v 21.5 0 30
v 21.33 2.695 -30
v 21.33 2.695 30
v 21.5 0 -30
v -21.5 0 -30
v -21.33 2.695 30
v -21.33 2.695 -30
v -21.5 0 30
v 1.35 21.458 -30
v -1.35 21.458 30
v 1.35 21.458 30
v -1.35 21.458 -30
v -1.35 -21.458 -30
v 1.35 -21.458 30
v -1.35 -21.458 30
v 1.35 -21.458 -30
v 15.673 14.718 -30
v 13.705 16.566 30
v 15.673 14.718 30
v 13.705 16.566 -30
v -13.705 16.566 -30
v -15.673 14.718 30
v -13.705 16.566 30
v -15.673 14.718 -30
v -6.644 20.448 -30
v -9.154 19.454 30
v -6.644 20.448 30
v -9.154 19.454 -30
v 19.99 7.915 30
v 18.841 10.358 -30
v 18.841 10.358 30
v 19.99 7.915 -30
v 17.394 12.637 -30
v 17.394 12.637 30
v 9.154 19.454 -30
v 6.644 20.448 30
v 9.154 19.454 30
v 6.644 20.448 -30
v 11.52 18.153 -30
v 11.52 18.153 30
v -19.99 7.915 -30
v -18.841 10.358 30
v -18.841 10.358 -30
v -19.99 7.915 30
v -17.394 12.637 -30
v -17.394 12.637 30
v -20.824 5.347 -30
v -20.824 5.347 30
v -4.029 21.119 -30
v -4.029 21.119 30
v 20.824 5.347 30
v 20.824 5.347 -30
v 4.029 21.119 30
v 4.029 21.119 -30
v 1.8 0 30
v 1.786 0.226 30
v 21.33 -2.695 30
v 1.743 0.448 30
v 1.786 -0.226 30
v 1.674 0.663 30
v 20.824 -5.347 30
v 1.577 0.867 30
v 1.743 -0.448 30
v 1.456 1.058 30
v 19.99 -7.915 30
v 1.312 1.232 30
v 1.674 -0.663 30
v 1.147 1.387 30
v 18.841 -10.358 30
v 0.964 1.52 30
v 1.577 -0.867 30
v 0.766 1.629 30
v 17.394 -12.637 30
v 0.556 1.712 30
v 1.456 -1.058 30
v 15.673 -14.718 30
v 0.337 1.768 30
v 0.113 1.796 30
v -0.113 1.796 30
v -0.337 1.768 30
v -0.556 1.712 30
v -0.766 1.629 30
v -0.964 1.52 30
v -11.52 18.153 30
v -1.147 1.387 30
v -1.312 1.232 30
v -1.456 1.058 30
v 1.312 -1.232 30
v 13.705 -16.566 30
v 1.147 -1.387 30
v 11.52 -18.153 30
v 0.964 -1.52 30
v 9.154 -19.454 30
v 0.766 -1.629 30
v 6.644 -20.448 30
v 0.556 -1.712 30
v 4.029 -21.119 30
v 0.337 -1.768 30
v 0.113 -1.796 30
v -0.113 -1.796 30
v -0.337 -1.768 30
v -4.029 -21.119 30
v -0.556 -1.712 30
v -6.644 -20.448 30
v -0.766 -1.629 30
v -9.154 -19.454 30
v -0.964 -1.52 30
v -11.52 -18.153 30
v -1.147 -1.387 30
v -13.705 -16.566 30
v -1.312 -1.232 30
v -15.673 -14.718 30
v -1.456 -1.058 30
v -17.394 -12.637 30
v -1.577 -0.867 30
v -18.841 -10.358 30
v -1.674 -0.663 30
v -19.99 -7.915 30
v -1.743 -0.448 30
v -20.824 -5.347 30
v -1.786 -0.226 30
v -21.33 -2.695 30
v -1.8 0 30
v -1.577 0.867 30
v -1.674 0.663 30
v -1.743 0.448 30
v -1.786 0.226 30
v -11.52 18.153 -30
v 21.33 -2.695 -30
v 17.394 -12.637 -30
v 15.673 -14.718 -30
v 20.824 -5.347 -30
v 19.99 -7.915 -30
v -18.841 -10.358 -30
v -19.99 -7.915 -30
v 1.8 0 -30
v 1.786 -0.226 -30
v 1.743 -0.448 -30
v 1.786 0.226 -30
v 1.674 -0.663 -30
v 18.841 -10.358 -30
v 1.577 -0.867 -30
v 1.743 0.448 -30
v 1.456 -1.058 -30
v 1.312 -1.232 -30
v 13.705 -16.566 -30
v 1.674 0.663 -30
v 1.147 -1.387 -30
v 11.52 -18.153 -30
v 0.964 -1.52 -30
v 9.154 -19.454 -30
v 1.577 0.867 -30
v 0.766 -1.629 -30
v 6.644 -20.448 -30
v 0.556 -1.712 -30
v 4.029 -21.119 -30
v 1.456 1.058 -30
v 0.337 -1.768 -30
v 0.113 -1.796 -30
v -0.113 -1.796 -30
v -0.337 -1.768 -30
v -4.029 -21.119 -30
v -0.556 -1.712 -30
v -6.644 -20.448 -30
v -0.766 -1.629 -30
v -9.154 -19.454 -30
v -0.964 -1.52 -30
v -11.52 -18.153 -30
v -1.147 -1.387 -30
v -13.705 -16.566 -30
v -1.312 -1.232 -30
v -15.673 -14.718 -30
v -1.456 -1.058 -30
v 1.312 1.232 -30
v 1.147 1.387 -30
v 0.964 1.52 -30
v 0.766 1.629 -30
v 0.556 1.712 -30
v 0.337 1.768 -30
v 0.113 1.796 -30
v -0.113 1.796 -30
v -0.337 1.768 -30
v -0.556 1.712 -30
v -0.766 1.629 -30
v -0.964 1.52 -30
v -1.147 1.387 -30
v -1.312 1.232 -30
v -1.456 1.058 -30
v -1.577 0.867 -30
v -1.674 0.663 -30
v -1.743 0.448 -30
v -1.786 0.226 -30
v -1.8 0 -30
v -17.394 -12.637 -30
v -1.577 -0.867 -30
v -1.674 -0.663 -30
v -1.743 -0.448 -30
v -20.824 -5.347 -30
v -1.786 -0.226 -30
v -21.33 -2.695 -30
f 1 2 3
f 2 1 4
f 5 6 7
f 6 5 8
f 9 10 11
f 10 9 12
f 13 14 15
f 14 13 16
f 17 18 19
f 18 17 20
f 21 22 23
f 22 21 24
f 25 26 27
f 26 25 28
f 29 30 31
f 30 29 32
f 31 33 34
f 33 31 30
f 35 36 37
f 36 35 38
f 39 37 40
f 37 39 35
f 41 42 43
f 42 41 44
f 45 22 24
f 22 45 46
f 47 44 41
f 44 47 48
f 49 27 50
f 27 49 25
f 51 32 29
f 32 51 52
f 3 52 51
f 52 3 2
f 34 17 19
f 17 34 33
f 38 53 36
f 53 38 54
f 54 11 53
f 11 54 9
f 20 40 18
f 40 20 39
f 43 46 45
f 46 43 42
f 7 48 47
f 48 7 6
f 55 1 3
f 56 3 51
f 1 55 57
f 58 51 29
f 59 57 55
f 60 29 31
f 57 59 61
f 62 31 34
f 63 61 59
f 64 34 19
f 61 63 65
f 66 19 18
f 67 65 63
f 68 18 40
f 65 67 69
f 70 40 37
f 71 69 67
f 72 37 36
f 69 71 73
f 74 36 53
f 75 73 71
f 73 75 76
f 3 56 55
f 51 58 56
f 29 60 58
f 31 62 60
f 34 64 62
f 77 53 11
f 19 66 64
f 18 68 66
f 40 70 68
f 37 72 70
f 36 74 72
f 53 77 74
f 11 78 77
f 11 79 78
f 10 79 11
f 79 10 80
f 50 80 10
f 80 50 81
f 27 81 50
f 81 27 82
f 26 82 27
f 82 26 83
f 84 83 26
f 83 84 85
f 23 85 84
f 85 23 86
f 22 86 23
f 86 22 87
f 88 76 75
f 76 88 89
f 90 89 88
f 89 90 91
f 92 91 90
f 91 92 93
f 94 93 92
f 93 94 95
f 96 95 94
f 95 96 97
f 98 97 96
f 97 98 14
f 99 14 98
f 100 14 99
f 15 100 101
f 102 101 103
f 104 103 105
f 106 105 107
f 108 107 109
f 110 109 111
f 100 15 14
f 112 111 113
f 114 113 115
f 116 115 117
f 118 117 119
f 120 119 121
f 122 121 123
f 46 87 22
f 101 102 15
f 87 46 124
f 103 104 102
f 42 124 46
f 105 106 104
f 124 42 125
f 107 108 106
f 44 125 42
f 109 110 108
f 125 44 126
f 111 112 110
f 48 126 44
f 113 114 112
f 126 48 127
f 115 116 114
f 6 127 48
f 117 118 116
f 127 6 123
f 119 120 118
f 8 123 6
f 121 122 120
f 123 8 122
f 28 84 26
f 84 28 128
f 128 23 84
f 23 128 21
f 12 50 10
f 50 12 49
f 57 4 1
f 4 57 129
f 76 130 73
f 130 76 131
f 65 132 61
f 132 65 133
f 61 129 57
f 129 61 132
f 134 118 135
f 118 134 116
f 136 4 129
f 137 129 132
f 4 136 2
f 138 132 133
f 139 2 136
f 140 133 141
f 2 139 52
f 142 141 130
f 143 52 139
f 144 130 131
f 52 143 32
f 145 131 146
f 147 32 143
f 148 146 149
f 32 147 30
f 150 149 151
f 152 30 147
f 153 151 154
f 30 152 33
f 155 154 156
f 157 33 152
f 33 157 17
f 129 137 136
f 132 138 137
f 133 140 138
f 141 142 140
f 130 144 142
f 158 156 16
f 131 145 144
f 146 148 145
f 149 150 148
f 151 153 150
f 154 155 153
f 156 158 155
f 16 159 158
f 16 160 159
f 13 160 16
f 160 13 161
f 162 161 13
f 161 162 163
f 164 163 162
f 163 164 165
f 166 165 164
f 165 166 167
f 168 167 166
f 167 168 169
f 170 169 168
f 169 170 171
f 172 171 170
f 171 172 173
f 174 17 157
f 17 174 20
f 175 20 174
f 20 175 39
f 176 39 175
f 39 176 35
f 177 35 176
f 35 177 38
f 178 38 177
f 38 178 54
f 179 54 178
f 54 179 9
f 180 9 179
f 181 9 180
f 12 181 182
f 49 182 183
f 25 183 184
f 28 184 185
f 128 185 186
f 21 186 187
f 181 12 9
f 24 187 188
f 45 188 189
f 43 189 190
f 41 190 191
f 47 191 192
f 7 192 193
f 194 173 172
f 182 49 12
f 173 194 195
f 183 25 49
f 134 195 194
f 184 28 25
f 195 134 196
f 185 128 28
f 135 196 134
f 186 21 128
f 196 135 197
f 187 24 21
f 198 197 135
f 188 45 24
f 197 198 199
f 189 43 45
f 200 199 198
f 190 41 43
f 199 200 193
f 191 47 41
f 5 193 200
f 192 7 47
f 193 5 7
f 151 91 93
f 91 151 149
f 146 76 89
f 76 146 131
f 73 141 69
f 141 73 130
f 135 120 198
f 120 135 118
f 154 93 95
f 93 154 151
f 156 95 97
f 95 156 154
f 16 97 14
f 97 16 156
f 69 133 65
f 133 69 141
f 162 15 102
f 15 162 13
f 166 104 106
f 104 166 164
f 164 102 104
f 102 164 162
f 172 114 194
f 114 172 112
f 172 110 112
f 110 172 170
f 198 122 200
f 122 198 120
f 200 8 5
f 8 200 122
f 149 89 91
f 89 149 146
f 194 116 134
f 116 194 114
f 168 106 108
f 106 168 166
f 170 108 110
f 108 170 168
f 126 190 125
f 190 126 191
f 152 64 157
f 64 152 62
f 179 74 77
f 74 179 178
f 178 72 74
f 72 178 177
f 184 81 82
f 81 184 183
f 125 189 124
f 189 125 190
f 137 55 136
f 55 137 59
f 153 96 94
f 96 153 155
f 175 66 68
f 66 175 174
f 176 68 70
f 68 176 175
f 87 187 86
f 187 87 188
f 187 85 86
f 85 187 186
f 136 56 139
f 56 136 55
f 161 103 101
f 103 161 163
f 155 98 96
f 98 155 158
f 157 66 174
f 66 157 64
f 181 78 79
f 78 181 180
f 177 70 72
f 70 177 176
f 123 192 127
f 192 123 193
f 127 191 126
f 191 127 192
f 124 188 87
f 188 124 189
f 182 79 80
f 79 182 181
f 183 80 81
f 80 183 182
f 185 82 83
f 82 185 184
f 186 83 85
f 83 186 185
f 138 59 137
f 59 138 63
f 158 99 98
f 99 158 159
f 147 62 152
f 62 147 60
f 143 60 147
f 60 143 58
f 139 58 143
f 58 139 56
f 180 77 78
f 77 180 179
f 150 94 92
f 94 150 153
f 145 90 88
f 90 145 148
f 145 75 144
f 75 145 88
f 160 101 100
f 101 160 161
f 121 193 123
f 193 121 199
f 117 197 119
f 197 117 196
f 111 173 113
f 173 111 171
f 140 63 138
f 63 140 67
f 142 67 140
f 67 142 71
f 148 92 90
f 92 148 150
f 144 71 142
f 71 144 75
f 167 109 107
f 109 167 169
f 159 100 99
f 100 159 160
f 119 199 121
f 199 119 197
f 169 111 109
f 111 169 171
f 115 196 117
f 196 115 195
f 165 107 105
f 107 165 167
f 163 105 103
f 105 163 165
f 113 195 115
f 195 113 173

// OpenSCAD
$fn = 50;


difference() {
	union() {
		translate(v = [0, 0, -30.0000000000]) {
			cylinder(h = 60, r = 21.5000000000);
		}
	}
	union() {
		translate(v = [0, 0, -100.0000000000]) {
			cylinder(h = 200, r = 1.8000000000);
		}
	}
}
